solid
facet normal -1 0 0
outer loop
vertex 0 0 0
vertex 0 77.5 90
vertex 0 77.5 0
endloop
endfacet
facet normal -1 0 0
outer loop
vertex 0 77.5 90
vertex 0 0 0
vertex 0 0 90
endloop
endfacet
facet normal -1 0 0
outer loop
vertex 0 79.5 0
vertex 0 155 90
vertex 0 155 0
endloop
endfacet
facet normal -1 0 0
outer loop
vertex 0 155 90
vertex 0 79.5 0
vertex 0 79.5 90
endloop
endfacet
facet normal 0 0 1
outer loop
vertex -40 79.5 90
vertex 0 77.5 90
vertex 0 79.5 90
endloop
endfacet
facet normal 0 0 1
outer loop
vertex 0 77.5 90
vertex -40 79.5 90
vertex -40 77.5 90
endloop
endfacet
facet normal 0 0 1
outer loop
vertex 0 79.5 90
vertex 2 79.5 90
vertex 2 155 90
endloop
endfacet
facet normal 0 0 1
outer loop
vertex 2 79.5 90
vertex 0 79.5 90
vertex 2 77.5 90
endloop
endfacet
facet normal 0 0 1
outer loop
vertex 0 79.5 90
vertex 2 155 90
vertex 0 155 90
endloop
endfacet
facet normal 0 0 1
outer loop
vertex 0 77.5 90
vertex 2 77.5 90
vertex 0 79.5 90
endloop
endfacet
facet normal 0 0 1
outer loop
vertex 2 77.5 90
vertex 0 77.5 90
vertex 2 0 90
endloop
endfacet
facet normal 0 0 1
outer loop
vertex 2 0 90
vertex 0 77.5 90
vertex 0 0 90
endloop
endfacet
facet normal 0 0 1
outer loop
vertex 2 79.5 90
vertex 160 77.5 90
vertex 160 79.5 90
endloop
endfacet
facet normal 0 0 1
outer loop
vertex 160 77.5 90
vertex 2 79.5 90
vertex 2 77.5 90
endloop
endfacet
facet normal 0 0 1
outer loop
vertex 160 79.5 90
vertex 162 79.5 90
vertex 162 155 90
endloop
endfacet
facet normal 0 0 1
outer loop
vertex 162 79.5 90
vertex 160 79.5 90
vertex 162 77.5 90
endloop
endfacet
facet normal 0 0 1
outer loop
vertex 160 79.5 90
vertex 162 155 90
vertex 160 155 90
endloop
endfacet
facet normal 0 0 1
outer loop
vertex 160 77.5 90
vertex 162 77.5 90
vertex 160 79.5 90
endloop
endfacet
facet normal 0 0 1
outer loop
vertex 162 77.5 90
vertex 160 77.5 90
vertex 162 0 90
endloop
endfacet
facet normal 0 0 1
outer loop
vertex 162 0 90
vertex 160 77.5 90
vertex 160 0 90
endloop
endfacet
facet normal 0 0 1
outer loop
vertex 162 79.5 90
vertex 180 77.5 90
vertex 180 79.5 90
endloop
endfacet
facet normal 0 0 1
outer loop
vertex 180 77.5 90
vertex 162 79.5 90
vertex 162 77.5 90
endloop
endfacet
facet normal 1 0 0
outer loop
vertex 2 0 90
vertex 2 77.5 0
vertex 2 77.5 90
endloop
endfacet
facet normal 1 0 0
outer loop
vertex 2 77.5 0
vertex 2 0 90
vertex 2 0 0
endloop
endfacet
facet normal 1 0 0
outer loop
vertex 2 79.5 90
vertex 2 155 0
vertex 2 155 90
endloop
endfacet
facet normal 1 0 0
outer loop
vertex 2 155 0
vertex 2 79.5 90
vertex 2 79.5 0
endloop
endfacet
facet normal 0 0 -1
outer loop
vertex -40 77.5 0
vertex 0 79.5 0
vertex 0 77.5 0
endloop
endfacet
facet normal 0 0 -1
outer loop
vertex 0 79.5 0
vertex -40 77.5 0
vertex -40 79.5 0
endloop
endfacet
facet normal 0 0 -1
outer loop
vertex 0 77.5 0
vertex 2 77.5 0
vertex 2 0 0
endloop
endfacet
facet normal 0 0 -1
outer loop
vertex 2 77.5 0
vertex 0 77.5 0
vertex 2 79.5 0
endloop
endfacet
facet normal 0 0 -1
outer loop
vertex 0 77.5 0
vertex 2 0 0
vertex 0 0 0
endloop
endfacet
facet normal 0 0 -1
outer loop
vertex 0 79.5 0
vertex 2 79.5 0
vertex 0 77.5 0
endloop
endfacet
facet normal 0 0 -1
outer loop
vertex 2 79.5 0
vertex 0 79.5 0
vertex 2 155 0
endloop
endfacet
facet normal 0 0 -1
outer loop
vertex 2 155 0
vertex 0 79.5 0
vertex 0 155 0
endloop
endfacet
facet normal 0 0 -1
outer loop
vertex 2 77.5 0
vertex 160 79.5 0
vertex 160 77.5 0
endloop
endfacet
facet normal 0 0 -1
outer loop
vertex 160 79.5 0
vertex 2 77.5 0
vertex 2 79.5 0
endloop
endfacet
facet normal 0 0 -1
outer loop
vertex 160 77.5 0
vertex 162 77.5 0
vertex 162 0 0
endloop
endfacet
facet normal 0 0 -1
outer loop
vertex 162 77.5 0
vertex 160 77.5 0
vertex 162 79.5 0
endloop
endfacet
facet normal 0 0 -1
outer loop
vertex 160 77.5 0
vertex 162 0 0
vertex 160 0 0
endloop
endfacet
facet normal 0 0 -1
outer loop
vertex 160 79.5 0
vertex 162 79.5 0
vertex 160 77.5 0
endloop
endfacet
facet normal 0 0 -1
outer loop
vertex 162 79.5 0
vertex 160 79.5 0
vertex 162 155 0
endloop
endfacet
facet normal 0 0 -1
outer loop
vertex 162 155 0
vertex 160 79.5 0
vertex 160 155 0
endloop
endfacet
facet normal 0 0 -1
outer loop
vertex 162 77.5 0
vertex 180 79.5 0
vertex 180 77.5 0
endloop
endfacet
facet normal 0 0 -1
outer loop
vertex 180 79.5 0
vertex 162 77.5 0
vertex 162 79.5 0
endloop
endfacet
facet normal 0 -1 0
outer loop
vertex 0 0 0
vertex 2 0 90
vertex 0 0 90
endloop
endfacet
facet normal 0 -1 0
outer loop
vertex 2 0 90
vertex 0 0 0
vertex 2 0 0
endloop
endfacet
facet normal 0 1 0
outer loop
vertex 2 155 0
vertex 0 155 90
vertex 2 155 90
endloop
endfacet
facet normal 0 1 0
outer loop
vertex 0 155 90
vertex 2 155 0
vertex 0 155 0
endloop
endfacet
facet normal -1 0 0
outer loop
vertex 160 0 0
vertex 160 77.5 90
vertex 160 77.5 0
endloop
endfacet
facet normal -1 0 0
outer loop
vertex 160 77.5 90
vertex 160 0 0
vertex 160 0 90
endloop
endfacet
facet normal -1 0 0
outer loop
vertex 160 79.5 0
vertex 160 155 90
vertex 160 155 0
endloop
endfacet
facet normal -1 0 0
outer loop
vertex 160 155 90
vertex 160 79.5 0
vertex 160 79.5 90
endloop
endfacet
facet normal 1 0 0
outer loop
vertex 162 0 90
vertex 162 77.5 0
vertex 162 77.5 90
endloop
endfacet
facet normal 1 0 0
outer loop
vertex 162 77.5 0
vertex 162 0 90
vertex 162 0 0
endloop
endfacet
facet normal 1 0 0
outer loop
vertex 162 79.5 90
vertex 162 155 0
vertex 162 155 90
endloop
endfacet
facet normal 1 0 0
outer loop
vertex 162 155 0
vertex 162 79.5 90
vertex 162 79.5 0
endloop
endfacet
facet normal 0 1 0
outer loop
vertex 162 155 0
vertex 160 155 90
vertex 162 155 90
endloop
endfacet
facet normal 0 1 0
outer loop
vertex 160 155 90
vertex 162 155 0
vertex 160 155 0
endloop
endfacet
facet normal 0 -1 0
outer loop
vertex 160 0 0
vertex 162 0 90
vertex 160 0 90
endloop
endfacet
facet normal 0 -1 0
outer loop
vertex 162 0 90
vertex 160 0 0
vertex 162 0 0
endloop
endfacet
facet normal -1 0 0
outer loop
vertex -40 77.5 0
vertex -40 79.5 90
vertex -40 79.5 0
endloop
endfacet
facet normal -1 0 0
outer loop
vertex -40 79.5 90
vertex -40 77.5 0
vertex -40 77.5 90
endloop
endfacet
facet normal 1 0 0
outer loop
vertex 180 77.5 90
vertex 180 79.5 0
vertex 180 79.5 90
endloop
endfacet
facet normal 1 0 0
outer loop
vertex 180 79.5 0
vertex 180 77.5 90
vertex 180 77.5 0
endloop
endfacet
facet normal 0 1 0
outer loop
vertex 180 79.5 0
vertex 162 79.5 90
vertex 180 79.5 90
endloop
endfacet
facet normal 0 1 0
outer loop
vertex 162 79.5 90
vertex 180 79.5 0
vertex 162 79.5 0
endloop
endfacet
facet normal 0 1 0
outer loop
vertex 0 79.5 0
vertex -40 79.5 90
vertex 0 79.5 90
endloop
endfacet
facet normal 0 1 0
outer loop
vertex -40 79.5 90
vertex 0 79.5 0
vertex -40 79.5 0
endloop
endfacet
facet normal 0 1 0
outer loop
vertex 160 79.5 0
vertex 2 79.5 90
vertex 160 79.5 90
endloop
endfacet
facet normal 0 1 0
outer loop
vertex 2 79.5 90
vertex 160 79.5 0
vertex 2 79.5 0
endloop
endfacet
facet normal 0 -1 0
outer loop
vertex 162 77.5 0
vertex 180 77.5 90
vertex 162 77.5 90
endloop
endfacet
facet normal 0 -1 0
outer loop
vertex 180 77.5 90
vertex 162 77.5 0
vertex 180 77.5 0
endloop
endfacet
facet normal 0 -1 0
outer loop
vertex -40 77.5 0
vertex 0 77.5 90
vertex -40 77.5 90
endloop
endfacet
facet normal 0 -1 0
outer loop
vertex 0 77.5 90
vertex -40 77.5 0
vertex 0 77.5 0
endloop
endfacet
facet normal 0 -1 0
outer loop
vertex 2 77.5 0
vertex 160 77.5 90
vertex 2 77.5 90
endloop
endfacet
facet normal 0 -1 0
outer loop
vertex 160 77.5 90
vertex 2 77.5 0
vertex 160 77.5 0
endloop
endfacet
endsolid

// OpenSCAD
// file: ../common/constants.scad
// 상수들 정의
// include 사용하시오
ZERO = [0, 0, 0];
HALF = [1/2, 1/2, 1/2];
ONE = [1, 1, 1];
BIG = [1024, 1024, 1024];
EPSILON = 0.01;
EPSILON2 = EPSILON * 2;
MINIMUM = 0.1;	//	0.1mm

FN = $preview ? 16 : 360;

//	자원들
RADIUS_HOLE_NUT_25 = 3.4 / 2;	//	검은색 25mm 나사 너트 구멍 반지름
// main file
/*
	냉장고 칸막이
- 내경 기준
- 높이: 90 mm
- 깊이: 155 mm
- 앞판 두께: 11.5+ mm
*/
include	<../common/constants.scad>
use <../common/library.scad>

MEASURE = [
	155,	//	내경 기준 깊이
	90,		//	높이
	11.5,	//	앞판 두께
	0		//	reserved
];
DEFINE = [
	2,		//	두께
	160,	//	간격
	16,		//	가로 묶음 높이, 대들보 위치
	0		//	reserved
];

module container() {
	y = 300;
	z = 300;
	translate([-EPSILON, 0, 0])		cube([EPSILON,					y + MEASURE[2],	z]);
	translate([0, 0, -EPSILON])		cube([MEASURE[0] + MEASURE[2],	y,				EPSILON]);
	translate([0, 0, 0])			cube([MEASURE[0] + MEASURE[2],	MEASURE[2],		MEASURE[1]]);
	translate([0, y, 0])			cube([MEASURE[0] + MEASURE[2],	MEASURE[2],		MEASURE[1]]);
	translate([MEASURE[0], 0, 0])	cube([MEASURE[2],				y,				MEASURE[1]]);
}
module fridge(type) {
	*translate([32, MEASURE[0] + MEASURE[2], 0])	rotate([0, 0, -90])	container();

	//	칸막이
	cube([DEFINE[0], MEASURE[0], MEASURE[1]]);
	translate([DEFINE[1], 0, 0])		cube([DEFINE[0], MEASURE[0], MEASURE[1]]);
	//	칸막이 반으로 나누기
	translate([-DEFINE[1] / 4, MEASURE[0] / 2, 0])		cube([220, DEFINE[0], MEASURE[1]]);
}

target = 0;
fridge(target);
/*
# in HOME(project root, ie. .../resouce3d)
C:\apps\openscad-2021.01\openscad.exe -o C:\src\eclipse-workspace\resource3d\stl\fridge.stl -D target=0 --export-format asciistl C:\src\eclipse-workspace\resource3d\fasten\fridge.scad
*/
